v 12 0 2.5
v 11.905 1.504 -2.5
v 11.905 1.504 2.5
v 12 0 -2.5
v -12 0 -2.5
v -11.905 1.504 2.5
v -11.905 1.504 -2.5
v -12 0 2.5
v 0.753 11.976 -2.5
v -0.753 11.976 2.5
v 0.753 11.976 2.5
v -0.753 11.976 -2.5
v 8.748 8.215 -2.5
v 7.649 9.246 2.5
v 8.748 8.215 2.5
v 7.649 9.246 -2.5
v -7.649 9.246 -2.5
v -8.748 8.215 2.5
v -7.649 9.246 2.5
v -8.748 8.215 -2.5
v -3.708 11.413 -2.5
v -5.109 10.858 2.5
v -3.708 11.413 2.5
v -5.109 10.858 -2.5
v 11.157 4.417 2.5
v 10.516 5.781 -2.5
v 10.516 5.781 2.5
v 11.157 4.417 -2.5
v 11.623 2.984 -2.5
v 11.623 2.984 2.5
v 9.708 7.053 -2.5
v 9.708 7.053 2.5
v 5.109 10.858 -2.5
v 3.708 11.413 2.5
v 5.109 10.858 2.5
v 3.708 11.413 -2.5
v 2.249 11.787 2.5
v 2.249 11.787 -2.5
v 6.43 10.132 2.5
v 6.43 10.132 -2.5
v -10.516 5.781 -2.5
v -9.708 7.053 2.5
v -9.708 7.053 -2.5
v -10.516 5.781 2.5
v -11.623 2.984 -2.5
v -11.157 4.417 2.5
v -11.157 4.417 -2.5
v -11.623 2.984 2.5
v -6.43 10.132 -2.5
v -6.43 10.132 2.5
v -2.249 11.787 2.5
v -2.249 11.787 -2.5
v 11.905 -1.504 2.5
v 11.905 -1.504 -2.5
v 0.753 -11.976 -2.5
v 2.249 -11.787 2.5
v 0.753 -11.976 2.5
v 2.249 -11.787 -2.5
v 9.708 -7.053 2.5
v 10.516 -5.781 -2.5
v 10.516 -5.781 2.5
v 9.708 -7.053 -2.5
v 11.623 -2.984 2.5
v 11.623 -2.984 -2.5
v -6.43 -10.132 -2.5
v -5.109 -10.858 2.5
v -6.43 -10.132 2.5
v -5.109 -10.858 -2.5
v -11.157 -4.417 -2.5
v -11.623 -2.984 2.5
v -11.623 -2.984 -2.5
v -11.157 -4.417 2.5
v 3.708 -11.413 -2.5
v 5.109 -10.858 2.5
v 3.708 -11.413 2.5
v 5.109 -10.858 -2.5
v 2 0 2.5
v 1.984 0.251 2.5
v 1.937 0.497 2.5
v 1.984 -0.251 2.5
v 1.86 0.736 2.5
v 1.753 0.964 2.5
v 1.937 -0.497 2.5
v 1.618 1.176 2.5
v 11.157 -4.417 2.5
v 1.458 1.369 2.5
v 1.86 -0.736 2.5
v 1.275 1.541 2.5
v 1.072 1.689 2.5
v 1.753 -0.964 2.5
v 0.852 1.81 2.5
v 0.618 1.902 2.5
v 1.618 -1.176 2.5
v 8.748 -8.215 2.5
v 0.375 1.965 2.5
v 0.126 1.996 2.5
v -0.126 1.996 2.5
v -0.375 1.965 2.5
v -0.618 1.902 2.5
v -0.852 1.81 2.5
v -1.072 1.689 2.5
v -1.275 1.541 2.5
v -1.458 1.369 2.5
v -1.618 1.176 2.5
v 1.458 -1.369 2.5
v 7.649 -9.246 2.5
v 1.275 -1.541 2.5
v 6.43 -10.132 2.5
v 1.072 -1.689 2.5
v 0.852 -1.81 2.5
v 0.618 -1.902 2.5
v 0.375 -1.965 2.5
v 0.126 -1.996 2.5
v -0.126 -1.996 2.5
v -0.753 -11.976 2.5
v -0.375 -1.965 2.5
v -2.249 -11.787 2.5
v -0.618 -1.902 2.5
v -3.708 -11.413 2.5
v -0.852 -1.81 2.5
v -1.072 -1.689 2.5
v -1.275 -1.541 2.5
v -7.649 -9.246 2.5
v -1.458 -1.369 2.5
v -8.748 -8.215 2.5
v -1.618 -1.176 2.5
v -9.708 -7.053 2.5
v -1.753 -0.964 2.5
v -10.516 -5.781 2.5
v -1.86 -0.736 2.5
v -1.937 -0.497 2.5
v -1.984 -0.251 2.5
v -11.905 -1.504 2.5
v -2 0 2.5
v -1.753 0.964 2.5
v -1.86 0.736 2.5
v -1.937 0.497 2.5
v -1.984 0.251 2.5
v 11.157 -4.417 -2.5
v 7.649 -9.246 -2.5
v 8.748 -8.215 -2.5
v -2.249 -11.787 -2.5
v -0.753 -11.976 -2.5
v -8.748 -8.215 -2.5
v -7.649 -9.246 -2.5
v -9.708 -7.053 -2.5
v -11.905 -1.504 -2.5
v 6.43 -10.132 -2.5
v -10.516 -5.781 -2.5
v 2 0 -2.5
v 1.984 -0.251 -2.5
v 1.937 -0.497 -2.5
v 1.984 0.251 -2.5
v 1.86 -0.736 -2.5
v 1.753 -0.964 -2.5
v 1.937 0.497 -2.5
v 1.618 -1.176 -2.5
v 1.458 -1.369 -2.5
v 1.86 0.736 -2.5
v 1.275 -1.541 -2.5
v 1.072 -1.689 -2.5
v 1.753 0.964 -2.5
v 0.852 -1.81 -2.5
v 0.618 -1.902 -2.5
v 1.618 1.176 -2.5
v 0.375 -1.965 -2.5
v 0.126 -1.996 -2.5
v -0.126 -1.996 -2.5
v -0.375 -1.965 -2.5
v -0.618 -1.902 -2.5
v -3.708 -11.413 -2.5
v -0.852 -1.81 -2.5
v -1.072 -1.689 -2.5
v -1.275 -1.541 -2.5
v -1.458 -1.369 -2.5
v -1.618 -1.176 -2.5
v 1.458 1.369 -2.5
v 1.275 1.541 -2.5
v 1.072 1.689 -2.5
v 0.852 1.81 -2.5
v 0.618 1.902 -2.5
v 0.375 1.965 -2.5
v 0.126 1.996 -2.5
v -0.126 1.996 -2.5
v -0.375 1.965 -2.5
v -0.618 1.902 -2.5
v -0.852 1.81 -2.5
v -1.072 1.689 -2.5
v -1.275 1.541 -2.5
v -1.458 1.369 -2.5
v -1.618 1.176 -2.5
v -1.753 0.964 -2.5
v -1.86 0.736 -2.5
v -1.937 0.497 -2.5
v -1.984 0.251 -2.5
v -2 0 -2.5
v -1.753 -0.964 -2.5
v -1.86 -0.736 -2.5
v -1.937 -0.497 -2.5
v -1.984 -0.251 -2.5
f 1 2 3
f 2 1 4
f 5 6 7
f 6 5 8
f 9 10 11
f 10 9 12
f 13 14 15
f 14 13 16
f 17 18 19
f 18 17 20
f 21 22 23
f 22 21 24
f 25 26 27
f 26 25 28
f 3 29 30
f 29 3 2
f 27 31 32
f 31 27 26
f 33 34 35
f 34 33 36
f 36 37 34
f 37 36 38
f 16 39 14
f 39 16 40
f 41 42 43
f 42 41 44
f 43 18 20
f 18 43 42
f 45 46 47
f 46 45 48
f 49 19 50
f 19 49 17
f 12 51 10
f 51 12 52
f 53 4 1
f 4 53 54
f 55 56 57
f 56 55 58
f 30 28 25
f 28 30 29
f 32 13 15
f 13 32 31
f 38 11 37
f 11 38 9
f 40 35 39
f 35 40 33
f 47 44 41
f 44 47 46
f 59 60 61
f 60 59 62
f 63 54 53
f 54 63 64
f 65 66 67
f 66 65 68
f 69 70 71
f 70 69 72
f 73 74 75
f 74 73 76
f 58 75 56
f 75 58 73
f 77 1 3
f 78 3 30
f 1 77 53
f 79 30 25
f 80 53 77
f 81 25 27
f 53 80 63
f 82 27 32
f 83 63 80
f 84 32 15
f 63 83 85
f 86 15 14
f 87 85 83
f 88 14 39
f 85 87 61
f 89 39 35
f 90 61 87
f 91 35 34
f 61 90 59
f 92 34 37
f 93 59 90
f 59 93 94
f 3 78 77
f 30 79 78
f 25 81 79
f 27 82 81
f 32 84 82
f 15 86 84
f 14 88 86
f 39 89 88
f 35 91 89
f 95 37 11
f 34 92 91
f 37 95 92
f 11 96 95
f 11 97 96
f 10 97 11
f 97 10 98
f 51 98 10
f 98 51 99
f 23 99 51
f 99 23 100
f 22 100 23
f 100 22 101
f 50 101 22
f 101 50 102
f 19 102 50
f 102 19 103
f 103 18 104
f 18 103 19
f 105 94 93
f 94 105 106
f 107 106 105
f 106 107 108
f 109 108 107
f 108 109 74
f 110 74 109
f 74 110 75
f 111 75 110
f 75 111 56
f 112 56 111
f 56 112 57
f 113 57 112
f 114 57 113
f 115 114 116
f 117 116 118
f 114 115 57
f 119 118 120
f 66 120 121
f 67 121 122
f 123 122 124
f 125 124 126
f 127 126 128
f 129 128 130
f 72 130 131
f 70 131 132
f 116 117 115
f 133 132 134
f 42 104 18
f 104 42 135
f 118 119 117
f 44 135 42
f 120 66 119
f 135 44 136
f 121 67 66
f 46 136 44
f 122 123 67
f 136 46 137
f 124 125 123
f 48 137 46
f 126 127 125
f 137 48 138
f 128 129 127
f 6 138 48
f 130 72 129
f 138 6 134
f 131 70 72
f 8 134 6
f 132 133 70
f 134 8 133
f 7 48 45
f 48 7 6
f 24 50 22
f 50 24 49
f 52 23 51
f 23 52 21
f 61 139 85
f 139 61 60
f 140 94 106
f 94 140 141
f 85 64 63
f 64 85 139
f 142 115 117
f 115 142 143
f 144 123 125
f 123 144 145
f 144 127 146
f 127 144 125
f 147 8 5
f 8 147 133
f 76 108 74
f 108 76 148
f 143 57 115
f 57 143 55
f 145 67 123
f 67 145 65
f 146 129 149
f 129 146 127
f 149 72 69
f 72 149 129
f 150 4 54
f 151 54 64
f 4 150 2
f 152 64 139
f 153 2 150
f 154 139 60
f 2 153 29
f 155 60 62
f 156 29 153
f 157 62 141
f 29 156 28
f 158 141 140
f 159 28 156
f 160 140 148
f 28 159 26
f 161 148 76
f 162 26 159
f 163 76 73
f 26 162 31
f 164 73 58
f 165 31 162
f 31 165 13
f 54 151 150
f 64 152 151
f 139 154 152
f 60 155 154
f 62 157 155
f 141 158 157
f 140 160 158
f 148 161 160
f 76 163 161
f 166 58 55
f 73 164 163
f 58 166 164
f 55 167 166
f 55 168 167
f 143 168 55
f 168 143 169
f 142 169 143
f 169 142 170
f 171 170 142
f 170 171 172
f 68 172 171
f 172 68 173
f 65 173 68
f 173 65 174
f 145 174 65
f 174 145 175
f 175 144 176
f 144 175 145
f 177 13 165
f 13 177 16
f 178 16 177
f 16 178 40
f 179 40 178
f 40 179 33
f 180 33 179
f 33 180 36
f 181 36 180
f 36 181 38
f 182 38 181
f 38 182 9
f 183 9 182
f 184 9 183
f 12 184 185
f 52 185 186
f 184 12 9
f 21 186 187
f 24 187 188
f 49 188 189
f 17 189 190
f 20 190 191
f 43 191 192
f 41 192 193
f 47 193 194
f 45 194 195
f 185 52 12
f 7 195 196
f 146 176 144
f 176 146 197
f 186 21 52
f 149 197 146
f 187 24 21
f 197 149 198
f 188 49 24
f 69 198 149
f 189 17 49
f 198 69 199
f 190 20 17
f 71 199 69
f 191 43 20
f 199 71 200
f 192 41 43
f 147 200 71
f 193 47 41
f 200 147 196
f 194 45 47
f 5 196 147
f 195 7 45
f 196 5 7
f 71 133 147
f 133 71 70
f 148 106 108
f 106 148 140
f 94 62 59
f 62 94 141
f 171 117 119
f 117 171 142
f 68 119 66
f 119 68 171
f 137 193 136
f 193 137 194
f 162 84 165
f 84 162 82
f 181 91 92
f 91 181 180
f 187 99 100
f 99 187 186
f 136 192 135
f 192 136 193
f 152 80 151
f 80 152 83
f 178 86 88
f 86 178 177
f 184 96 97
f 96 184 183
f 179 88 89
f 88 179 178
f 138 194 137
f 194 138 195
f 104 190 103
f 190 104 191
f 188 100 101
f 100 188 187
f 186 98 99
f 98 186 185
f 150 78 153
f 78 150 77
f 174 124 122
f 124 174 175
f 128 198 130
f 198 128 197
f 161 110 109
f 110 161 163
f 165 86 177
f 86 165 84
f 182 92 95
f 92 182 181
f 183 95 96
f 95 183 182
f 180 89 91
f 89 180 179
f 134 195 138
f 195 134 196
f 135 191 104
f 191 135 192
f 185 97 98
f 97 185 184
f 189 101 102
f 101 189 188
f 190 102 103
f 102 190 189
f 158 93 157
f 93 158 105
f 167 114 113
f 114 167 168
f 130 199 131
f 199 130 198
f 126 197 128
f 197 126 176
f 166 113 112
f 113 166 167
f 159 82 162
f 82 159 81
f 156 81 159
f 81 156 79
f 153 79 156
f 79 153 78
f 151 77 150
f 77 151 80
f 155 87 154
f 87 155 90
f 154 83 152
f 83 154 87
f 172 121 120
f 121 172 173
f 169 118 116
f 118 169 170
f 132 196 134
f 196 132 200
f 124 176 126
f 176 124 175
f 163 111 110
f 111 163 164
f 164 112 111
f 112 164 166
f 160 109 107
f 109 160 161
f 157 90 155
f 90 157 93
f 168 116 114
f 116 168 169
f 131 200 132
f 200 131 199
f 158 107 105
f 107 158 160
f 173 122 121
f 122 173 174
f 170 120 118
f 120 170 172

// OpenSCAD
$fn = 50;


difference() {
	union() {
		translate(v = [0, 0, -2.5000000000]) {
			cylinder(h = 5, r = 12.0000000000);
		}
	}
	union() {
		translate(v = [0, 0, -100.0000000000]) {
			cylinder(h = 200, r = 2.0000000000);
		}
	}
}
